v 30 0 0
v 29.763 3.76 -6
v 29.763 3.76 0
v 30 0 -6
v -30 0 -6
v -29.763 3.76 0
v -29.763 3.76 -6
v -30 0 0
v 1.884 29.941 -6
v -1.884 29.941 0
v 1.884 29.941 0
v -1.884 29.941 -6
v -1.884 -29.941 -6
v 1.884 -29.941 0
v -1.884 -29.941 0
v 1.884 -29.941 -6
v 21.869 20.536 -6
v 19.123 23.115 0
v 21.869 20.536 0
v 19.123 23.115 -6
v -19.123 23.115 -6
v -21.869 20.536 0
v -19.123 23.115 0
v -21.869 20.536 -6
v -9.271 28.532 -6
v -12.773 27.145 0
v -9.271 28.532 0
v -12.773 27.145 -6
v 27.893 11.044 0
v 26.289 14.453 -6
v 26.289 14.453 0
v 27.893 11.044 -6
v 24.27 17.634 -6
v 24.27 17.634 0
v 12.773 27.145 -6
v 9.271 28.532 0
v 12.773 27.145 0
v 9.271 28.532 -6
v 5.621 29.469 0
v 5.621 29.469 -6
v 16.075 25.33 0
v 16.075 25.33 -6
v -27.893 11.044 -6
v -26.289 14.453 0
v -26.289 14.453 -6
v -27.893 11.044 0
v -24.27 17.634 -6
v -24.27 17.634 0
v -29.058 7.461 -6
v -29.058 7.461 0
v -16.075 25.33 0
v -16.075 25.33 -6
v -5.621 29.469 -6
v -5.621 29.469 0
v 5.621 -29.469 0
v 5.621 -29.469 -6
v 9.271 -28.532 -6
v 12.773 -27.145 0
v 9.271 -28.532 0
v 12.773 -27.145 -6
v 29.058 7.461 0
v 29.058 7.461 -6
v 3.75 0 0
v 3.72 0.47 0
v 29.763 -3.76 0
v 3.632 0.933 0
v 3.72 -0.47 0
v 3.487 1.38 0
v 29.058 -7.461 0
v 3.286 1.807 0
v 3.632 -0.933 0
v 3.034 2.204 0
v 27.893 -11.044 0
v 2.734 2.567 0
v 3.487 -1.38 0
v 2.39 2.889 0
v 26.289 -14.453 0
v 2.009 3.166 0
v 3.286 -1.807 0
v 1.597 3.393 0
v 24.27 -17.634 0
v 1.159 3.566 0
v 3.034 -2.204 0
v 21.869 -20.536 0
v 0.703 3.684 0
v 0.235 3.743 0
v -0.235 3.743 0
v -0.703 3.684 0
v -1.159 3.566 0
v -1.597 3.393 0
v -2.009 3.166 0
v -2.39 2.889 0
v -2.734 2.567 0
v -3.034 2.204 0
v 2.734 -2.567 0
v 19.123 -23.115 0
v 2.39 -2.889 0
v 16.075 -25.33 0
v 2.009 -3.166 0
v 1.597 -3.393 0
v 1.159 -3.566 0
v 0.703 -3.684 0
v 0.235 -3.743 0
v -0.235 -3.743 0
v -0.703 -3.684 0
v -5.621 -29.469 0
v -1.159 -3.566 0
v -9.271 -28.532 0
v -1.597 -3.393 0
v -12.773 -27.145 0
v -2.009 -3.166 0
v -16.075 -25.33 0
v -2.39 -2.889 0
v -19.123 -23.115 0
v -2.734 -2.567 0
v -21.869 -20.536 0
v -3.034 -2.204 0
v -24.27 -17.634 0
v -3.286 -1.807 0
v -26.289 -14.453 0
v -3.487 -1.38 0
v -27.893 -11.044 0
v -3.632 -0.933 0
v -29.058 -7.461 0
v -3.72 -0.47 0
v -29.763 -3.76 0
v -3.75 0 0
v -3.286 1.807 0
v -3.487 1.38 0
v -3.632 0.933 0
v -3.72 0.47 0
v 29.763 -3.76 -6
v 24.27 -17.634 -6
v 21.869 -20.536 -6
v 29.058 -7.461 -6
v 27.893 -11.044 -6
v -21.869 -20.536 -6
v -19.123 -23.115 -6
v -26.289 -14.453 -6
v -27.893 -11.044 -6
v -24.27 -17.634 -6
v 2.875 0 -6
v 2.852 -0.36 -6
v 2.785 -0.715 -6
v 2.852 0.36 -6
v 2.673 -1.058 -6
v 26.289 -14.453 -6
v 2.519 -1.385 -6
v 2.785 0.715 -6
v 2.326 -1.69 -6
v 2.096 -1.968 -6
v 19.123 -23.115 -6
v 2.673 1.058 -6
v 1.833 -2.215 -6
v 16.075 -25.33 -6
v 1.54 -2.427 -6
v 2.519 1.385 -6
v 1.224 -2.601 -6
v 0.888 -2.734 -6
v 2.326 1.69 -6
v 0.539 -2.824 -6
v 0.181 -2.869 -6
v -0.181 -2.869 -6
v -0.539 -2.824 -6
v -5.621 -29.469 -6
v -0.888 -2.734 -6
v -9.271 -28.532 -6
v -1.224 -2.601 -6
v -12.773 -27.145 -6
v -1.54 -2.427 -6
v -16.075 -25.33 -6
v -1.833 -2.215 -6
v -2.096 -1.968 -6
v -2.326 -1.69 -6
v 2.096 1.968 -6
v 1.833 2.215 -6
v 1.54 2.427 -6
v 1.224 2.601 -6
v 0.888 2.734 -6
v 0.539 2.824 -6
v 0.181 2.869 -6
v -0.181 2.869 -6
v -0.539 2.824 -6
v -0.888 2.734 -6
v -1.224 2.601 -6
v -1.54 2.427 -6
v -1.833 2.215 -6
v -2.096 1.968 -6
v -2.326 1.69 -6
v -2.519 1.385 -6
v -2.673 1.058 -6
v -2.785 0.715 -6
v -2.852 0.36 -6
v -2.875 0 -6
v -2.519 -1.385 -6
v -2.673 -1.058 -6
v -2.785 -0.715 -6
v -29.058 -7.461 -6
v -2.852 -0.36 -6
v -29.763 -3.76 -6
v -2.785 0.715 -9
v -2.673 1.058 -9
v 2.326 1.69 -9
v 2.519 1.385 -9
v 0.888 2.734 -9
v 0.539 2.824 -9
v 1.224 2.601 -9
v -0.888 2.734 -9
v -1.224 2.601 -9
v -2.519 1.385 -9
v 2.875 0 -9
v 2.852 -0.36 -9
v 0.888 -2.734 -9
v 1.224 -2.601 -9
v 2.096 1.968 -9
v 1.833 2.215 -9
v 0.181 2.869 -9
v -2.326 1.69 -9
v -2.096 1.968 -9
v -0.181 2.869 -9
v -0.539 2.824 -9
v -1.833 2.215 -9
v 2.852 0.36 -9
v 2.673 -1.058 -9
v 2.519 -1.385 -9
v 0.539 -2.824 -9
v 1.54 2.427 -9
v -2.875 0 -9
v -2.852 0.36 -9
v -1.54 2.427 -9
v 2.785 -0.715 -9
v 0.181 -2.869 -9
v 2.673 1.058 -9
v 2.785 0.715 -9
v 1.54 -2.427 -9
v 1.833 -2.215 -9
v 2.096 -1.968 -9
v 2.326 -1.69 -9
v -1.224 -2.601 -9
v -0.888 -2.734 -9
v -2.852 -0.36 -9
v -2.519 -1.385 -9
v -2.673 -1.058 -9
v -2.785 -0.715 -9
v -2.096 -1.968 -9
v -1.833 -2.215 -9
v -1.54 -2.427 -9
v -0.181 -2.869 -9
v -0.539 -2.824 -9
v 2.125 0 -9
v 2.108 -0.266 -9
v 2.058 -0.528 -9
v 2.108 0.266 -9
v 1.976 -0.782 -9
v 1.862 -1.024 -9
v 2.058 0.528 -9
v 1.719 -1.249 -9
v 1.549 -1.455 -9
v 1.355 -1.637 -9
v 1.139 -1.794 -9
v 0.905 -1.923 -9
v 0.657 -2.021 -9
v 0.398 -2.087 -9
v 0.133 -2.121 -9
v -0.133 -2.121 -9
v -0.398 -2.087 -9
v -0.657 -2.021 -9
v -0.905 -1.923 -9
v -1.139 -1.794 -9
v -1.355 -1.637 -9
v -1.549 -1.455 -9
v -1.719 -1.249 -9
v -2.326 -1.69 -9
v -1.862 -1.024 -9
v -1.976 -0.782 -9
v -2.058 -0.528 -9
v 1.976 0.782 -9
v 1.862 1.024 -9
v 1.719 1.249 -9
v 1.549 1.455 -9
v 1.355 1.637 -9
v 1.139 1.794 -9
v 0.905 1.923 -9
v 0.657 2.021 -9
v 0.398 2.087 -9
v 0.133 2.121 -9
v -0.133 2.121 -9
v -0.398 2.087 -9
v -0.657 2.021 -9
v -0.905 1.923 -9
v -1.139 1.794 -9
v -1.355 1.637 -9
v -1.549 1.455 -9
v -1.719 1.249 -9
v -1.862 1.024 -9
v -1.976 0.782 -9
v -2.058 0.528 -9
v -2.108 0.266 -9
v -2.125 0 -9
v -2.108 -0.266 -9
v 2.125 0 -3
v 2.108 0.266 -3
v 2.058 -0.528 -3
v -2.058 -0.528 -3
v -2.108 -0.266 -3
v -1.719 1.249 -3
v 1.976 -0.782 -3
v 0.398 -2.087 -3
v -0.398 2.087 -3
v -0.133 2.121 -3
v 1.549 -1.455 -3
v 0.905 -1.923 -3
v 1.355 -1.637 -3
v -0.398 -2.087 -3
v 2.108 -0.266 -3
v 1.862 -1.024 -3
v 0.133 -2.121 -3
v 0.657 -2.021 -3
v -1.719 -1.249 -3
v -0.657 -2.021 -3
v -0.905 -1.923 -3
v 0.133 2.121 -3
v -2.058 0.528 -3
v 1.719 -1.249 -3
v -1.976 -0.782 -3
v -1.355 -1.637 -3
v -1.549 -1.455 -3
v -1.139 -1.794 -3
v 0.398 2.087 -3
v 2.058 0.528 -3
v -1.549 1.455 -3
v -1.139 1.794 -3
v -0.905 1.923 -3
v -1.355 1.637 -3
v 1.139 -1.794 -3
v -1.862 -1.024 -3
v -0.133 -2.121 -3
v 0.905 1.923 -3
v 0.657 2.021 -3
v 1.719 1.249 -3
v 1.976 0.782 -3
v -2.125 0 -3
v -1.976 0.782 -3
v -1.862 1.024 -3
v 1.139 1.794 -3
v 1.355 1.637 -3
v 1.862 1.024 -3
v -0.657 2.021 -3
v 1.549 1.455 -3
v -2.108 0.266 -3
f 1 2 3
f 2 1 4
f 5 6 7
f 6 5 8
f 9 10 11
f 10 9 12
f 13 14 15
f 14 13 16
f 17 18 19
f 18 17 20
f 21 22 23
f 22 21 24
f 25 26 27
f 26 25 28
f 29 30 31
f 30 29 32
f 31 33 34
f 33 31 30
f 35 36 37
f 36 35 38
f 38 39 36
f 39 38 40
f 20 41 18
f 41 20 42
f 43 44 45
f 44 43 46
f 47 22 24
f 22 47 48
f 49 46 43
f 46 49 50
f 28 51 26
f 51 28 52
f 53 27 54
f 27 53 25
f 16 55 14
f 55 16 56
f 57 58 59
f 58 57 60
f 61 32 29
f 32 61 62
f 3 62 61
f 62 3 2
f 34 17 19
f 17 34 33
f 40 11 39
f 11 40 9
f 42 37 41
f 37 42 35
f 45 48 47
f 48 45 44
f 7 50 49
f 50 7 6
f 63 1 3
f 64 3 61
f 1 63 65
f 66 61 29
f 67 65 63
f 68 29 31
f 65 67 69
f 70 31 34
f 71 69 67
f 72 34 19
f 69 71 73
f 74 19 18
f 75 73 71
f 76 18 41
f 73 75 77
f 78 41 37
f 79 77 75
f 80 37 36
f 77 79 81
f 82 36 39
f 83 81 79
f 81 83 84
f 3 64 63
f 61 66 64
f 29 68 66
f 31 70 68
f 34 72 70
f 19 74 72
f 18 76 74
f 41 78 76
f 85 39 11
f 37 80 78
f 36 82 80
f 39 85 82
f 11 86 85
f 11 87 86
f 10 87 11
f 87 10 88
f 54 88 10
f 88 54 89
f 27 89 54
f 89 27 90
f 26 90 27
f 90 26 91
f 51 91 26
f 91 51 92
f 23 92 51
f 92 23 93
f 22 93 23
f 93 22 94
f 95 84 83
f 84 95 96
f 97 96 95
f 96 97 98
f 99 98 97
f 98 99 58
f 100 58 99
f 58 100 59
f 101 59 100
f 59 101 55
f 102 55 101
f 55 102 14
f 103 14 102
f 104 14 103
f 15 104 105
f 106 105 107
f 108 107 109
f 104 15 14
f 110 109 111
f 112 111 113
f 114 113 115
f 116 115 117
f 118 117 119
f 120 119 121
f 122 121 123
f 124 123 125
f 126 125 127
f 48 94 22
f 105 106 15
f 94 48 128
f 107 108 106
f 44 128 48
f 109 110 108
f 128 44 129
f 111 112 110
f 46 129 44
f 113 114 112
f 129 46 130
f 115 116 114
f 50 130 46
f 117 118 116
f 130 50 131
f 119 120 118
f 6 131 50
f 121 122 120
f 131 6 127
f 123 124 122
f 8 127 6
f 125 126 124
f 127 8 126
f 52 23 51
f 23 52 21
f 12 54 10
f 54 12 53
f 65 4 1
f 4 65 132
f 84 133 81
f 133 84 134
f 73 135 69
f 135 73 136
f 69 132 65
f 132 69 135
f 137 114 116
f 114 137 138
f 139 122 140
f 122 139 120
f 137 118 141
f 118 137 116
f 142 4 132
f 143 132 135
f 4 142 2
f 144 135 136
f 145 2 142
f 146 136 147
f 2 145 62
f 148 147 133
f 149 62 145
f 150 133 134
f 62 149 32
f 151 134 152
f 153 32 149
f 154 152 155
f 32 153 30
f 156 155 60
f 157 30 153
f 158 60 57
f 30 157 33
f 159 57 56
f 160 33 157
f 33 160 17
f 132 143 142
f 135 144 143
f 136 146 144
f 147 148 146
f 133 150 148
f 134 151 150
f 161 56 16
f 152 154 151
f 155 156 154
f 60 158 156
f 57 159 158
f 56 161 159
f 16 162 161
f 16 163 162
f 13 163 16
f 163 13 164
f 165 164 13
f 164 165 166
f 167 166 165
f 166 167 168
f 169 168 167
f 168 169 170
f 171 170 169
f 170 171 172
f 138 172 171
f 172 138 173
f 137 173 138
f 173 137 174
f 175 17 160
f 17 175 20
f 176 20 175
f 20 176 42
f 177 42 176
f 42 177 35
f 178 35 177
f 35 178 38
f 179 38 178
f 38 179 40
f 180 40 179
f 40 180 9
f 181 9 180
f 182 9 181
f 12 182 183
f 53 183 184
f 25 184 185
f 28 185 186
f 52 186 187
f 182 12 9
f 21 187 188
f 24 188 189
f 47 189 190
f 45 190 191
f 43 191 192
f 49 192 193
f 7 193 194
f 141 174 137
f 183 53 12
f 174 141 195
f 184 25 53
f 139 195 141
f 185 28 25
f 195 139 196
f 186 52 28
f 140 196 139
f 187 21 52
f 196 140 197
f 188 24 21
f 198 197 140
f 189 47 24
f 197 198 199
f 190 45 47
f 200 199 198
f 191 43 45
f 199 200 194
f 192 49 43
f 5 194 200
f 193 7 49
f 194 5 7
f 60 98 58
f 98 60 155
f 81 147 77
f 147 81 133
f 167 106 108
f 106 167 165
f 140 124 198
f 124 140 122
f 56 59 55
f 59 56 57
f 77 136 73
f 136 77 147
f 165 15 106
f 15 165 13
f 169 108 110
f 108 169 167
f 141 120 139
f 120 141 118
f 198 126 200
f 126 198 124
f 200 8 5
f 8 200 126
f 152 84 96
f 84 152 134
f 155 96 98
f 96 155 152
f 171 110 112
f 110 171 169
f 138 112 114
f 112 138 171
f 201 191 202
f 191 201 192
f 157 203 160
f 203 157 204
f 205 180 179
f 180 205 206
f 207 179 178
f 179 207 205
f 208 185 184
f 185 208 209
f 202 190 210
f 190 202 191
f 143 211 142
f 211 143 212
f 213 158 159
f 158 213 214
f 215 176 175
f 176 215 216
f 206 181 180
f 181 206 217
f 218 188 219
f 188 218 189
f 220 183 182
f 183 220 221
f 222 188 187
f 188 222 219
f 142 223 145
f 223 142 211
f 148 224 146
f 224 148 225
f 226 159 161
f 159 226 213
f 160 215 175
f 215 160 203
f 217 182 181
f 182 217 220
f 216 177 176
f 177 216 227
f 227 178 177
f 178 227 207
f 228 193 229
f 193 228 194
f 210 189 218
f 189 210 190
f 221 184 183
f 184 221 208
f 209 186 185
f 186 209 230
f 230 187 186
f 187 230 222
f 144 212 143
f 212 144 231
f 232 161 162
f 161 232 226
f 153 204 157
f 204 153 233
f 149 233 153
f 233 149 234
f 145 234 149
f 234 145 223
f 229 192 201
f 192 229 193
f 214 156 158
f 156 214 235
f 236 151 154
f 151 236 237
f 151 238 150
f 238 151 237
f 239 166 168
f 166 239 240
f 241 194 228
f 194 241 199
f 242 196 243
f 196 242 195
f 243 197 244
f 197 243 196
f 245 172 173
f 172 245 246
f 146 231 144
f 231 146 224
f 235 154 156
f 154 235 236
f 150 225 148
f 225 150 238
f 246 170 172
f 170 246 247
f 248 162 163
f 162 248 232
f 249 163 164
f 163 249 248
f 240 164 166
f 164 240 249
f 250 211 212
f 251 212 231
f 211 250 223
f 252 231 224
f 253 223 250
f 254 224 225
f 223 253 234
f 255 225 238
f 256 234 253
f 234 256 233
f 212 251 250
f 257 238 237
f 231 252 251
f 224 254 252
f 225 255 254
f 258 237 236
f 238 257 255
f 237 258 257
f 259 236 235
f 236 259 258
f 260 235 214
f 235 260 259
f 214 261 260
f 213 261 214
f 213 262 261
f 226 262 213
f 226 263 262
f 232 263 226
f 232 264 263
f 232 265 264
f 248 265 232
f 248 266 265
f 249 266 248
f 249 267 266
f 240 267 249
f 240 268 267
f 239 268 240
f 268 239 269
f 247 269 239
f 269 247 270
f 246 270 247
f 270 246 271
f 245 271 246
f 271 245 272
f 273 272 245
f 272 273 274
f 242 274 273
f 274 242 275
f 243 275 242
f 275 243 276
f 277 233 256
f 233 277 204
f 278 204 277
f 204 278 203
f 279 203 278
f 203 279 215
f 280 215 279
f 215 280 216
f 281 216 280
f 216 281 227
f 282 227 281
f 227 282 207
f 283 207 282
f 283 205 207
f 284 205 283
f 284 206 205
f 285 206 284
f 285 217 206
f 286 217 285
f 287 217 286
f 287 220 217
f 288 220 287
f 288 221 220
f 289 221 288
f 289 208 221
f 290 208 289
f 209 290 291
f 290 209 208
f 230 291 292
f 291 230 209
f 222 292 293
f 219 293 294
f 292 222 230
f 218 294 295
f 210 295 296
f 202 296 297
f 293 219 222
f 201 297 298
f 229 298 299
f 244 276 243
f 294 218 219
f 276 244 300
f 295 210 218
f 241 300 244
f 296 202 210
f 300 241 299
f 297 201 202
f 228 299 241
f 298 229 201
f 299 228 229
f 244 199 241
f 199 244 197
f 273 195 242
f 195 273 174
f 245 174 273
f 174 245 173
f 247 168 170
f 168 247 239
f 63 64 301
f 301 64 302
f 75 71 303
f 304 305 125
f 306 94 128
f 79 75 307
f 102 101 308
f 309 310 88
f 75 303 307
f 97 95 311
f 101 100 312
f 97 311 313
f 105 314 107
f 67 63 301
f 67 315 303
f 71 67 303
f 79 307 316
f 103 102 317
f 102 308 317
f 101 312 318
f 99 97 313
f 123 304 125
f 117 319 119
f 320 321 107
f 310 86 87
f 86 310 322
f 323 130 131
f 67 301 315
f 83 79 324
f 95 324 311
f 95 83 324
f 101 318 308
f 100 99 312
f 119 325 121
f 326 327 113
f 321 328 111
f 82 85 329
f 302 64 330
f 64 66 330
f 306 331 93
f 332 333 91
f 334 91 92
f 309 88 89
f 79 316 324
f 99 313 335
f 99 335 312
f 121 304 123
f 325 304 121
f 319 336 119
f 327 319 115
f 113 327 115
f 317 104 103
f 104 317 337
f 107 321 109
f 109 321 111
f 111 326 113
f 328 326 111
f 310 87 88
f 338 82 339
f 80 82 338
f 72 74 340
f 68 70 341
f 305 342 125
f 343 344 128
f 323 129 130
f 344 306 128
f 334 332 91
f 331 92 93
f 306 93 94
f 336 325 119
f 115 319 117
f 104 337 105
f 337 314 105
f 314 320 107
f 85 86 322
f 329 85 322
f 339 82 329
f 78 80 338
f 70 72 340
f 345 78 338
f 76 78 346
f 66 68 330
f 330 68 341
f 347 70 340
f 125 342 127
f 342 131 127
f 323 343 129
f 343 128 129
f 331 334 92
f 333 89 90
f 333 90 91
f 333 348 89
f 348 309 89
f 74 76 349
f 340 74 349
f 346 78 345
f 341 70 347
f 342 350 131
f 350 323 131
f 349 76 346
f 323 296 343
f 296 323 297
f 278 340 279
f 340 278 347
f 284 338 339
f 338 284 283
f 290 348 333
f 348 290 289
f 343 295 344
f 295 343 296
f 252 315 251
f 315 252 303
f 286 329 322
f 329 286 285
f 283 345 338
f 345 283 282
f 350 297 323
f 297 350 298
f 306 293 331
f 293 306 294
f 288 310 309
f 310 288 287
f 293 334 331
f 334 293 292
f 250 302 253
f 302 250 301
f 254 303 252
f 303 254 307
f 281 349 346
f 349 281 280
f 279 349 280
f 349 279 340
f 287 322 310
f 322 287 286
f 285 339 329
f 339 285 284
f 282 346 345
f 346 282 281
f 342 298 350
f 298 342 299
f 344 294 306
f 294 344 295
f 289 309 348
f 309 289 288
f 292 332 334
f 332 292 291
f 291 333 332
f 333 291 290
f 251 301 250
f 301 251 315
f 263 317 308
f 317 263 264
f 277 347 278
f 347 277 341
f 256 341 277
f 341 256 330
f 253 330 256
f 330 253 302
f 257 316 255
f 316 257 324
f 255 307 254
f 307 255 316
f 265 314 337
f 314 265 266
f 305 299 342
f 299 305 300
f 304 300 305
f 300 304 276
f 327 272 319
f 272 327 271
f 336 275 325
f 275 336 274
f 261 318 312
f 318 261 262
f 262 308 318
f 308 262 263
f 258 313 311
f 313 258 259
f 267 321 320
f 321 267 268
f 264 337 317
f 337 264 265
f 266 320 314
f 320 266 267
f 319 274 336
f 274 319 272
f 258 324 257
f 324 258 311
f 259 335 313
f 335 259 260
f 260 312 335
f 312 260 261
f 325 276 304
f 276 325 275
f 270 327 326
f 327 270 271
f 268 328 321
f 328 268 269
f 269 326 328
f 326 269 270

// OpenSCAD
$fn = 50;


difference() {
	union() {
		translate(v = [0, 0, -6.0000000000]) {
			cylinder(h = 6, r = 30.0000000000);
		}
		#translate(v = [0, 0, -9.0000000000]) {
			cylinder(h = 9, r = 2.8750000000);
		}
	}
	union() {
		translate(v = [0, 0, 0]) {
			rotate(a = [0, 0, 0]) {
				difference() {
					union() {
						translate(v = [0, 0, -9.0000000000]) {
							cylinder(h = 9, r = 2.0000000000);
						}
						translate(v = [0, 0, -3]) {
							cylinder(h = 3, r1 = 2.1250000000, r2 = 3.7500000000);
						}
						translate(v = [0, 0, -9.0000000000]) {
							cylinder(h = 9, r = 2.1250000000);
						}
						translate(v = [0, 0, -9.0000000000]) {
							cylinder(h = 9, r = 2.0000000000);
						}
					}
					union();
				}
			}
		}
	}
}
